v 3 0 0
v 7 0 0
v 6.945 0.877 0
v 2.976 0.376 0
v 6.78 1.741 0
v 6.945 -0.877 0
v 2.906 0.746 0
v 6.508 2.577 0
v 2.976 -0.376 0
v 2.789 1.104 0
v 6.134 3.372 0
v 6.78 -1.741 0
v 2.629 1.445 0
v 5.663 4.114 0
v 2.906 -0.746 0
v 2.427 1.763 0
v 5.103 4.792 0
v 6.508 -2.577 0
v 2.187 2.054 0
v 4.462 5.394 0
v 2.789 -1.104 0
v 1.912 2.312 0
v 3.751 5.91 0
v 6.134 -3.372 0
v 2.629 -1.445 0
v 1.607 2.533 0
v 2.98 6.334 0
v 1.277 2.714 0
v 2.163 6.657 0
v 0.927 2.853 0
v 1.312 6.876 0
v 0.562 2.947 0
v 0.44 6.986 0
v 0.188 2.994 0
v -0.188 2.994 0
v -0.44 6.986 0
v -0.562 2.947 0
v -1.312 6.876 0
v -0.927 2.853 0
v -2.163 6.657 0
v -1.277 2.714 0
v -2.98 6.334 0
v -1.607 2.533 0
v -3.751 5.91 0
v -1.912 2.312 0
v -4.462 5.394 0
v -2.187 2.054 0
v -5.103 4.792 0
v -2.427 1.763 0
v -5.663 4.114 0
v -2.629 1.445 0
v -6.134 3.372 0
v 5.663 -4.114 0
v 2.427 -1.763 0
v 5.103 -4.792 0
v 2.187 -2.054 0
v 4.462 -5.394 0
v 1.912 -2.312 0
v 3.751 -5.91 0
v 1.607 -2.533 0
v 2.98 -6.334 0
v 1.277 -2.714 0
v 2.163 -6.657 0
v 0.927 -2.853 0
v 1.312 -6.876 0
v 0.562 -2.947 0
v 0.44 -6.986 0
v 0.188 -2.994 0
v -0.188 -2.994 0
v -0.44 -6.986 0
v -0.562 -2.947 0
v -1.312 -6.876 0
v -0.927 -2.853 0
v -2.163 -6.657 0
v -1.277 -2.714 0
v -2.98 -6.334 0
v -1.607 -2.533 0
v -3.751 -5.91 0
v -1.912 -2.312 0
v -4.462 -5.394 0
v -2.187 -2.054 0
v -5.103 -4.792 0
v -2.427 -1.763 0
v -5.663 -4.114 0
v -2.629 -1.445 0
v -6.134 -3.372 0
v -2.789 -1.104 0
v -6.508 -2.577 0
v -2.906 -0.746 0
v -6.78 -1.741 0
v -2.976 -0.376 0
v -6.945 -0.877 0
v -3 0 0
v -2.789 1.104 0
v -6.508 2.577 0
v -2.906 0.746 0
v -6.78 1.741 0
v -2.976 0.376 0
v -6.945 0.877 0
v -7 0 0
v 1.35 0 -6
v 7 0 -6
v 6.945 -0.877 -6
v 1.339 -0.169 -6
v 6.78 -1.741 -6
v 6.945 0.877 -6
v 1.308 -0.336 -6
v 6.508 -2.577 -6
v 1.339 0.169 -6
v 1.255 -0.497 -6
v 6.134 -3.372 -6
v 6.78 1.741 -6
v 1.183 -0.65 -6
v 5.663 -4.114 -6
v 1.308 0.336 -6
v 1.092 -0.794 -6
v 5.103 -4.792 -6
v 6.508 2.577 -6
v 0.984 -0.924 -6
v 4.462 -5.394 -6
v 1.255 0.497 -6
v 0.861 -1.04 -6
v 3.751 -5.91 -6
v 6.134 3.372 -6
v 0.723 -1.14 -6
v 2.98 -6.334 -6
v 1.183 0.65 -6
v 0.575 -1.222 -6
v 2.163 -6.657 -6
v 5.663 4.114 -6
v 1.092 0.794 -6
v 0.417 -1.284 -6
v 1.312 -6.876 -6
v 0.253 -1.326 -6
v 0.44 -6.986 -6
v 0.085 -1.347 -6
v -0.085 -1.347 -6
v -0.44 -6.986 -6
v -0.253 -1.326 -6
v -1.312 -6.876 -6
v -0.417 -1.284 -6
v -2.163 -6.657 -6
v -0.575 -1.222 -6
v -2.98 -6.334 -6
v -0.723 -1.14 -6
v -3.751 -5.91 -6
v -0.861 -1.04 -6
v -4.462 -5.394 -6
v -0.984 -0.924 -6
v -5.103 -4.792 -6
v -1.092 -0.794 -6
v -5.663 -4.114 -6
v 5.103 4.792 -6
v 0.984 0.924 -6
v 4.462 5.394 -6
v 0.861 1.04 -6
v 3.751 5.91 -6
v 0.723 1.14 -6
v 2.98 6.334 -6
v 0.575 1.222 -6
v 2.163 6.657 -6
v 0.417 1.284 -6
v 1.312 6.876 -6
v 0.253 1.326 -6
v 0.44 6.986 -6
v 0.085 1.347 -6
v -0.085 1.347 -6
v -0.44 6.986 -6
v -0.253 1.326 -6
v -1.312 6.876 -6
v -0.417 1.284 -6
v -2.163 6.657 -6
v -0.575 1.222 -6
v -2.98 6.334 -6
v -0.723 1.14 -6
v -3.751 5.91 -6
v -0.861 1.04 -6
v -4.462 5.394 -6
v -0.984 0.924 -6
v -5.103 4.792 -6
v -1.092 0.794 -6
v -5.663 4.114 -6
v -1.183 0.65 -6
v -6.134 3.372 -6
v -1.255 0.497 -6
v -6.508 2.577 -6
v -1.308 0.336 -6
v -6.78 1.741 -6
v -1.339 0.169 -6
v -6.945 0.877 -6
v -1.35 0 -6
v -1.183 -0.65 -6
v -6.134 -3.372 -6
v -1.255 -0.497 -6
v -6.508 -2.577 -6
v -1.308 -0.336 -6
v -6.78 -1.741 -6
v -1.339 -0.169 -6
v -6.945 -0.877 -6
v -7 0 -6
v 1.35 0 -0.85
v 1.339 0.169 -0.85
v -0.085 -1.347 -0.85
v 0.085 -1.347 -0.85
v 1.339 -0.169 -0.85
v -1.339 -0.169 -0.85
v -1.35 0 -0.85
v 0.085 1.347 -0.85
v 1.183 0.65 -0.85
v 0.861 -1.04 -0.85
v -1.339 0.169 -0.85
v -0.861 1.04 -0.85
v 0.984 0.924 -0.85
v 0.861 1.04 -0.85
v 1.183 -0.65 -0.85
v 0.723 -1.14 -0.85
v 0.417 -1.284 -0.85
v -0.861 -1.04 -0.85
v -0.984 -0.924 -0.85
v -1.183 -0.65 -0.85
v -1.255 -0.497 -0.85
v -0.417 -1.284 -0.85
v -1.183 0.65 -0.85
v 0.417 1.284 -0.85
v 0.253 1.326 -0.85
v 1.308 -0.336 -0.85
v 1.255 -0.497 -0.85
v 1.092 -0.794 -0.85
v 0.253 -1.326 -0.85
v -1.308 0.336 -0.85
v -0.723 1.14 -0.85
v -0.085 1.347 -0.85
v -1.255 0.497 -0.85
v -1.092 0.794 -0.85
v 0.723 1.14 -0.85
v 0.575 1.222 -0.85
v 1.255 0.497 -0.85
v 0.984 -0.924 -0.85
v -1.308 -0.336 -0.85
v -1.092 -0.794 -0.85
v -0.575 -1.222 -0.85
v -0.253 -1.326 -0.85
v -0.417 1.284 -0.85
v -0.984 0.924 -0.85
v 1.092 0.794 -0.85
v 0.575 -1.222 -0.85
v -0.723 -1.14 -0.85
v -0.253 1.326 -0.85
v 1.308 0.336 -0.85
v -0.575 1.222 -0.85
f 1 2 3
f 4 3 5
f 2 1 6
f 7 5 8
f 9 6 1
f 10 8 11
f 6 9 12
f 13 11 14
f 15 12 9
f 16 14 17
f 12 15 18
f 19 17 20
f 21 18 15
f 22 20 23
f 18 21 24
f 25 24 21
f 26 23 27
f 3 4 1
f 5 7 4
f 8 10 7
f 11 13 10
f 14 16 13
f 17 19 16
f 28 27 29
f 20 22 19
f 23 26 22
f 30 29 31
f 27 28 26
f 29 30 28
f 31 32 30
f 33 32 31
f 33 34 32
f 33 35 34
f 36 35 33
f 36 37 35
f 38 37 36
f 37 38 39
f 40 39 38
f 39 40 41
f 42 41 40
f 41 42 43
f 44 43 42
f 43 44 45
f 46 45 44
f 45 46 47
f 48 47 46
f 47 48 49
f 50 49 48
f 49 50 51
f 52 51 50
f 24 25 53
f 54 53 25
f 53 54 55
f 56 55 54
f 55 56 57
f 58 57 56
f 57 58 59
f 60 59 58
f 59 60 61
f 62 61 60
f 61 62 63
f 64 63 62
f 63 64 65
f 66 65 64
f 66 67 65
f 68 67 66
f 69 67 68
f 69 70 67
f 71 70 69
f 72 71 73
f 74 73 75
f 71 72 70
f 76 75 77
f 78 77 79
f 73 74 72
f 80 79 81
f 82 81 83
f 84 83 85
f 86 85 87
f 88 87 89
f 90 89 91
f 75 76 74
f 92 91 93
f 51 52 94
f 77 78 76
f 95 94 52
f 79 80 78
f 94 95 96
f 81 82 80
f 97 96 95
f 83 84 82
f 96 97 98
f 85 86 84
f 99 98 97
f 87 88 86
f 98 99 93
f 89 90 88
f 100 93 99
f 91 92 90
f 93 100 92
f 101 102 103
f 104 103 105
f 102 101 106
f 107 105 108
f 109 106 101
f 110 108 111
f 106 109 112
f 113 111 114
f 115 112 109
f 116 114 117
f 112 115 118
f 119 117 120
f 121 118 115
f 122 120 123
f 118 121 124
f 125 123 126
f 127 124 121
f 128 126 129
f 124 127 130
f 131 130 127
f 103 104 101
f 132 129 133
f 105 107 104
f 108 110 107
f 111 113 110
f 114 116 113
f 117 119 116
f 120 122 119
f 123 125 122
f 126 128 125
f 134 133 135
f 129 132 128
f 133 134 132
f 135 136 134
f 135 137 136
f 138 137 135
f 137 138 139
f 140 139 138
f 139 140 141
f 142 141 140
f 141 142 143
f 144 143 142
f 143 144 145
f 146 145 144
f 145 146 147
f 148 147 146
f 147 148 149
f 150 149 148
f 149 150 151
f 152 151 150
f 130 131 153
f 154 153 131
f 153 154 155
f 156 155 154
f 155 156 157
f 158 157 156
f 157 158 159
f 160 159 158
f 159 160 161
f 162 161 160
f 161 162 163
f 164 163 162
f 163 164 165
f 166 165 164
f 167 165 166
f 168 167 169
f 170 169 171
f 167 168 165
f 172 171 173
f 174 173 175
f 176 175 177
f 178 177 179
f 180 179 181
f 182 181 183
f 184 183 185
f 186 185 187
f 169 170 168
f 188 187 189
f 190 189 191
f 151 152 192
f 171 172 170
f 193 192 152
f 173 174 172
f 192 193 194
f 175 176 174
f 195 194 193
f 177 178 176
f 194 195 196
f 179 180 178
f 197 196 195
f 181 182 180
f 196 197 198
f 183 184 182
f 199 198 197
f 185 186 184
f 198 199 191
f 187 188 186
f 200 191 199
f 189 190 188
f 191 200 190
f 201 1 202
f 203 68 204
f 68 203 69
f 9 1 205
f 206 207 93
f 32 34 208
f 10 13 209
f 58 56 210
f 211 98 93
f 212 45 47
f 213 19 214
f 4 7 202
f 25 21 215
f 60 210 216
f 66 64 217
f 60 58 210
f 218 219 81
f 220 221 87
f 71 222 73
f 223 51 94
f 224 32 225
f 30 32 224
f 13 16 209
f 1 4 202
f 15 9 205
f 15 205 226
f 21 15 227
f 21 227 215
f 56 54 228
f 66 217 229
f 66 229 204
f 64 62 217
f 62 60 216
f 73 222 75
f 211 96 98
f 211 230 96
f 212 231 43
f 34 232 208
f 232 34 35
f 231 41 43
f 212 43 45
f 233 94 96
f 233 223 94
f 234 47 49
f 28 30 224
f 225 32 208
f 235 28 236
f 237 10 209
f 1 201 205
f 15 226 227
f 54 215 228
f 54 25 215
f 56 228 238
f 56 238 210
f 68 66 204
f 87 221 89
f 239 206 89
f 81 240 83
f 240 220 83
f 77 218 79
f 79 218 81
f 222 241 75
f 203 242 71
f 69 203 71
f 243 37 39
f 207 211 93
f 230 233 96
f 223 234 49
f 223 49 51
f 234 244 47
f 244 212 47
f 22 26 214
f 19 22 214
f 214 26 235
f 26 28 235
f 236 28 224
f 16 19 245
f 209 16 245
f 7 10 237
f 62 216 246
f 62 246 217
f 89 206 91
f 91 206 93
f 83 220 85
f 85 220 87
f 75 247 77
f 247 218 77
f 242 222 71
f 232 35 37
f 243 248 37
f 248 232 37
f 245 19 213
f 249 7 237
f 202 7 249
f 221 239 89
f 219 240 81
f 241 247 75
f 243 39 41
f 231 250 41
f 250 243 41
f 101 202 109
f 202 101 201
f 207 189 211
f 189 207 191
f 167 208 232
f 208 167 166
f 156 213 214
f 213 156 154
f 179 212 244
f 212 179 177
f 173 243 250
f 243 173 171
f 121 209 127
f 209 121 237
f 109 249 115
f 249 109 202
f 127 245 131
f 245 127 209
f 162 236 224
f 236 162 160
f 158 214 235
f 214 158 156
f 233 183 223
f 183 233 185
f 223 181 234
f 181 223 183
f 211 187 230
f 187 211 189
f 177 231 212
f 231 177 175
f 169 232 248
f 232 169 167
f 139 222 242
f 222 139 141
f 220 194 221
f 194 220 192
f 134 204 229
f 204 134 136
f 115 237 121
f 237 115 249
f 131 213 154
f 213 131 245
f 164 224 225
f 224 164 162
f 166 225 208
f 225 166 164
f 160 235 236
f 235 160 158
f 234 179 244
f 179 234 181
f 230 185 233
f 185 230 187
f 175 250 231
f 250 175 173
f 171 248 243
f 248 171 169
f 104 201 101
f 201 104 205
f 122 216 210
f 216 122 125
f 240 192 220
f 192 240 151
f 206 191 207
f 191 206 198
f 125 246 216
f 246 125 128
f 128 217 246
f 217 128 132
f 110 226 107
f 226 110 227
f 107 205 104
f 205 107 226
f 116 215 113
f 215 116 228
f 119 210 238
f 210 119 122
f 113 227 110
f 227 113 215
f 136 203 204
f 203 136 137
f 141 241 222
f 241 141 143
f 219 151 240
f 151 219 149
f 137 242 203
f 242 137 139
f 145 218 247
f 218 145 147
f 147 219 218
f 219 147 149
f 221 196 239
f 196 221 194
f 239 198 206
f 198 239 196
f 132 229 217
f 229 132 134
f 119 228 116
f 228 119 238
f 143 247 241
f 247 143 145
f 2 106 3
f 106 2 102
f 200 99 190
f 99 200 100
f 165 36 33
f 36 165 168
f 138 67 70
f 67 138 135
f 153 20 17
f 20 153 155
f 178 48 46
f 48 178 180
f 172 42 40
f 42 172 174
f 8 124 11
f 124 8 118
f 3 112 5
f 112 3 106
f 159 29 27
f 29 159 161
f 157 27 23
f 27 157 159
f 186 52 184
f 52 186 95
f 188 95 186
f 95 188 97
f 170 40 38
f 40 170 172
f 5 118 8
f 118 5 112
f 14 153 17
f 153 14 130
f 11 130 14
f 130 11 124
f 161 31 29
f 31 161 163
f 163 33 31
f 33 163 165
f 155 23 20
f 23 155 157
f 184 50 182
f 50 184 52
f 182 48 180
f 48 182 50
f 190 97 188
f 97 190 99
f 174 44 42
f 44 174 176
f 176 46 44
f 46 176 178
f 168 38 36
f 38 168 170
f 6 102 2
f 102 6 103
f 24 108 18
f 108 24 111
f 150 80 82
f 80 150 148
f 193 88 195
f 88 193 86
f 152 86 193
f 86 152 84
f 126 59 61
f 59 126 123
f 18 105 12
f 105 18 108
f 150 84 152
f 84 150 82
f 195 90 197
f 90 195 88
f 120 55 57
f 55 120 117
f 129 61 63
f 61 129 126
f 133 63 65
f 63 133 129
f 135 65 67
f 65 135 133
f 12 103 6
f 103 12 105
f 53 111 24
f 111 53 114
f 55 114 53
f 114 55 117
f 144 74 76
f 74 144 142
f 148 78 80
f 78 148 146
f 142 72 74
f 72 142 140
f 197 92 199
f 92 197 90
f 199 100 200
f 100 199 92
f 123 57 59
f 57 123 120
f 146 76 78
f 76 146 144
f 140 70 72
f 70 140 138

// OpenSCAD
$fn = 50;


difference() {
	union() {
		translate(v = [0, 0, -6.0000000000]) {
			cylinder(h = 6, r = 7.0000000000);
		}
	}
	union() {
		translate(v = [0, 0, 0]) {
			rotate(a = [0, 0, 0]) {
				difference() {
					union() {
						translate(v = [0, 0, -6.0000000000]) {
							cylinder(h = 6, r = 1.0000000000);
						}
						translate(v = [0, 0, -0.8500000000]) {
							cylinder(h = 0.8500000000, r1 = 1.3500000000, r2 = 3.0000000000);
						}
						translate(v = [0, 0, -6.0000000000]) {
							cylinder(h = 6, r = 1.3500000000);
						}
						translate(v = [0, 0, -6.0000000000]) {
							cylinder(h = 6, r = 1.0000000000);
						}
					}
					union();
				}
			}
		}
	}
}
